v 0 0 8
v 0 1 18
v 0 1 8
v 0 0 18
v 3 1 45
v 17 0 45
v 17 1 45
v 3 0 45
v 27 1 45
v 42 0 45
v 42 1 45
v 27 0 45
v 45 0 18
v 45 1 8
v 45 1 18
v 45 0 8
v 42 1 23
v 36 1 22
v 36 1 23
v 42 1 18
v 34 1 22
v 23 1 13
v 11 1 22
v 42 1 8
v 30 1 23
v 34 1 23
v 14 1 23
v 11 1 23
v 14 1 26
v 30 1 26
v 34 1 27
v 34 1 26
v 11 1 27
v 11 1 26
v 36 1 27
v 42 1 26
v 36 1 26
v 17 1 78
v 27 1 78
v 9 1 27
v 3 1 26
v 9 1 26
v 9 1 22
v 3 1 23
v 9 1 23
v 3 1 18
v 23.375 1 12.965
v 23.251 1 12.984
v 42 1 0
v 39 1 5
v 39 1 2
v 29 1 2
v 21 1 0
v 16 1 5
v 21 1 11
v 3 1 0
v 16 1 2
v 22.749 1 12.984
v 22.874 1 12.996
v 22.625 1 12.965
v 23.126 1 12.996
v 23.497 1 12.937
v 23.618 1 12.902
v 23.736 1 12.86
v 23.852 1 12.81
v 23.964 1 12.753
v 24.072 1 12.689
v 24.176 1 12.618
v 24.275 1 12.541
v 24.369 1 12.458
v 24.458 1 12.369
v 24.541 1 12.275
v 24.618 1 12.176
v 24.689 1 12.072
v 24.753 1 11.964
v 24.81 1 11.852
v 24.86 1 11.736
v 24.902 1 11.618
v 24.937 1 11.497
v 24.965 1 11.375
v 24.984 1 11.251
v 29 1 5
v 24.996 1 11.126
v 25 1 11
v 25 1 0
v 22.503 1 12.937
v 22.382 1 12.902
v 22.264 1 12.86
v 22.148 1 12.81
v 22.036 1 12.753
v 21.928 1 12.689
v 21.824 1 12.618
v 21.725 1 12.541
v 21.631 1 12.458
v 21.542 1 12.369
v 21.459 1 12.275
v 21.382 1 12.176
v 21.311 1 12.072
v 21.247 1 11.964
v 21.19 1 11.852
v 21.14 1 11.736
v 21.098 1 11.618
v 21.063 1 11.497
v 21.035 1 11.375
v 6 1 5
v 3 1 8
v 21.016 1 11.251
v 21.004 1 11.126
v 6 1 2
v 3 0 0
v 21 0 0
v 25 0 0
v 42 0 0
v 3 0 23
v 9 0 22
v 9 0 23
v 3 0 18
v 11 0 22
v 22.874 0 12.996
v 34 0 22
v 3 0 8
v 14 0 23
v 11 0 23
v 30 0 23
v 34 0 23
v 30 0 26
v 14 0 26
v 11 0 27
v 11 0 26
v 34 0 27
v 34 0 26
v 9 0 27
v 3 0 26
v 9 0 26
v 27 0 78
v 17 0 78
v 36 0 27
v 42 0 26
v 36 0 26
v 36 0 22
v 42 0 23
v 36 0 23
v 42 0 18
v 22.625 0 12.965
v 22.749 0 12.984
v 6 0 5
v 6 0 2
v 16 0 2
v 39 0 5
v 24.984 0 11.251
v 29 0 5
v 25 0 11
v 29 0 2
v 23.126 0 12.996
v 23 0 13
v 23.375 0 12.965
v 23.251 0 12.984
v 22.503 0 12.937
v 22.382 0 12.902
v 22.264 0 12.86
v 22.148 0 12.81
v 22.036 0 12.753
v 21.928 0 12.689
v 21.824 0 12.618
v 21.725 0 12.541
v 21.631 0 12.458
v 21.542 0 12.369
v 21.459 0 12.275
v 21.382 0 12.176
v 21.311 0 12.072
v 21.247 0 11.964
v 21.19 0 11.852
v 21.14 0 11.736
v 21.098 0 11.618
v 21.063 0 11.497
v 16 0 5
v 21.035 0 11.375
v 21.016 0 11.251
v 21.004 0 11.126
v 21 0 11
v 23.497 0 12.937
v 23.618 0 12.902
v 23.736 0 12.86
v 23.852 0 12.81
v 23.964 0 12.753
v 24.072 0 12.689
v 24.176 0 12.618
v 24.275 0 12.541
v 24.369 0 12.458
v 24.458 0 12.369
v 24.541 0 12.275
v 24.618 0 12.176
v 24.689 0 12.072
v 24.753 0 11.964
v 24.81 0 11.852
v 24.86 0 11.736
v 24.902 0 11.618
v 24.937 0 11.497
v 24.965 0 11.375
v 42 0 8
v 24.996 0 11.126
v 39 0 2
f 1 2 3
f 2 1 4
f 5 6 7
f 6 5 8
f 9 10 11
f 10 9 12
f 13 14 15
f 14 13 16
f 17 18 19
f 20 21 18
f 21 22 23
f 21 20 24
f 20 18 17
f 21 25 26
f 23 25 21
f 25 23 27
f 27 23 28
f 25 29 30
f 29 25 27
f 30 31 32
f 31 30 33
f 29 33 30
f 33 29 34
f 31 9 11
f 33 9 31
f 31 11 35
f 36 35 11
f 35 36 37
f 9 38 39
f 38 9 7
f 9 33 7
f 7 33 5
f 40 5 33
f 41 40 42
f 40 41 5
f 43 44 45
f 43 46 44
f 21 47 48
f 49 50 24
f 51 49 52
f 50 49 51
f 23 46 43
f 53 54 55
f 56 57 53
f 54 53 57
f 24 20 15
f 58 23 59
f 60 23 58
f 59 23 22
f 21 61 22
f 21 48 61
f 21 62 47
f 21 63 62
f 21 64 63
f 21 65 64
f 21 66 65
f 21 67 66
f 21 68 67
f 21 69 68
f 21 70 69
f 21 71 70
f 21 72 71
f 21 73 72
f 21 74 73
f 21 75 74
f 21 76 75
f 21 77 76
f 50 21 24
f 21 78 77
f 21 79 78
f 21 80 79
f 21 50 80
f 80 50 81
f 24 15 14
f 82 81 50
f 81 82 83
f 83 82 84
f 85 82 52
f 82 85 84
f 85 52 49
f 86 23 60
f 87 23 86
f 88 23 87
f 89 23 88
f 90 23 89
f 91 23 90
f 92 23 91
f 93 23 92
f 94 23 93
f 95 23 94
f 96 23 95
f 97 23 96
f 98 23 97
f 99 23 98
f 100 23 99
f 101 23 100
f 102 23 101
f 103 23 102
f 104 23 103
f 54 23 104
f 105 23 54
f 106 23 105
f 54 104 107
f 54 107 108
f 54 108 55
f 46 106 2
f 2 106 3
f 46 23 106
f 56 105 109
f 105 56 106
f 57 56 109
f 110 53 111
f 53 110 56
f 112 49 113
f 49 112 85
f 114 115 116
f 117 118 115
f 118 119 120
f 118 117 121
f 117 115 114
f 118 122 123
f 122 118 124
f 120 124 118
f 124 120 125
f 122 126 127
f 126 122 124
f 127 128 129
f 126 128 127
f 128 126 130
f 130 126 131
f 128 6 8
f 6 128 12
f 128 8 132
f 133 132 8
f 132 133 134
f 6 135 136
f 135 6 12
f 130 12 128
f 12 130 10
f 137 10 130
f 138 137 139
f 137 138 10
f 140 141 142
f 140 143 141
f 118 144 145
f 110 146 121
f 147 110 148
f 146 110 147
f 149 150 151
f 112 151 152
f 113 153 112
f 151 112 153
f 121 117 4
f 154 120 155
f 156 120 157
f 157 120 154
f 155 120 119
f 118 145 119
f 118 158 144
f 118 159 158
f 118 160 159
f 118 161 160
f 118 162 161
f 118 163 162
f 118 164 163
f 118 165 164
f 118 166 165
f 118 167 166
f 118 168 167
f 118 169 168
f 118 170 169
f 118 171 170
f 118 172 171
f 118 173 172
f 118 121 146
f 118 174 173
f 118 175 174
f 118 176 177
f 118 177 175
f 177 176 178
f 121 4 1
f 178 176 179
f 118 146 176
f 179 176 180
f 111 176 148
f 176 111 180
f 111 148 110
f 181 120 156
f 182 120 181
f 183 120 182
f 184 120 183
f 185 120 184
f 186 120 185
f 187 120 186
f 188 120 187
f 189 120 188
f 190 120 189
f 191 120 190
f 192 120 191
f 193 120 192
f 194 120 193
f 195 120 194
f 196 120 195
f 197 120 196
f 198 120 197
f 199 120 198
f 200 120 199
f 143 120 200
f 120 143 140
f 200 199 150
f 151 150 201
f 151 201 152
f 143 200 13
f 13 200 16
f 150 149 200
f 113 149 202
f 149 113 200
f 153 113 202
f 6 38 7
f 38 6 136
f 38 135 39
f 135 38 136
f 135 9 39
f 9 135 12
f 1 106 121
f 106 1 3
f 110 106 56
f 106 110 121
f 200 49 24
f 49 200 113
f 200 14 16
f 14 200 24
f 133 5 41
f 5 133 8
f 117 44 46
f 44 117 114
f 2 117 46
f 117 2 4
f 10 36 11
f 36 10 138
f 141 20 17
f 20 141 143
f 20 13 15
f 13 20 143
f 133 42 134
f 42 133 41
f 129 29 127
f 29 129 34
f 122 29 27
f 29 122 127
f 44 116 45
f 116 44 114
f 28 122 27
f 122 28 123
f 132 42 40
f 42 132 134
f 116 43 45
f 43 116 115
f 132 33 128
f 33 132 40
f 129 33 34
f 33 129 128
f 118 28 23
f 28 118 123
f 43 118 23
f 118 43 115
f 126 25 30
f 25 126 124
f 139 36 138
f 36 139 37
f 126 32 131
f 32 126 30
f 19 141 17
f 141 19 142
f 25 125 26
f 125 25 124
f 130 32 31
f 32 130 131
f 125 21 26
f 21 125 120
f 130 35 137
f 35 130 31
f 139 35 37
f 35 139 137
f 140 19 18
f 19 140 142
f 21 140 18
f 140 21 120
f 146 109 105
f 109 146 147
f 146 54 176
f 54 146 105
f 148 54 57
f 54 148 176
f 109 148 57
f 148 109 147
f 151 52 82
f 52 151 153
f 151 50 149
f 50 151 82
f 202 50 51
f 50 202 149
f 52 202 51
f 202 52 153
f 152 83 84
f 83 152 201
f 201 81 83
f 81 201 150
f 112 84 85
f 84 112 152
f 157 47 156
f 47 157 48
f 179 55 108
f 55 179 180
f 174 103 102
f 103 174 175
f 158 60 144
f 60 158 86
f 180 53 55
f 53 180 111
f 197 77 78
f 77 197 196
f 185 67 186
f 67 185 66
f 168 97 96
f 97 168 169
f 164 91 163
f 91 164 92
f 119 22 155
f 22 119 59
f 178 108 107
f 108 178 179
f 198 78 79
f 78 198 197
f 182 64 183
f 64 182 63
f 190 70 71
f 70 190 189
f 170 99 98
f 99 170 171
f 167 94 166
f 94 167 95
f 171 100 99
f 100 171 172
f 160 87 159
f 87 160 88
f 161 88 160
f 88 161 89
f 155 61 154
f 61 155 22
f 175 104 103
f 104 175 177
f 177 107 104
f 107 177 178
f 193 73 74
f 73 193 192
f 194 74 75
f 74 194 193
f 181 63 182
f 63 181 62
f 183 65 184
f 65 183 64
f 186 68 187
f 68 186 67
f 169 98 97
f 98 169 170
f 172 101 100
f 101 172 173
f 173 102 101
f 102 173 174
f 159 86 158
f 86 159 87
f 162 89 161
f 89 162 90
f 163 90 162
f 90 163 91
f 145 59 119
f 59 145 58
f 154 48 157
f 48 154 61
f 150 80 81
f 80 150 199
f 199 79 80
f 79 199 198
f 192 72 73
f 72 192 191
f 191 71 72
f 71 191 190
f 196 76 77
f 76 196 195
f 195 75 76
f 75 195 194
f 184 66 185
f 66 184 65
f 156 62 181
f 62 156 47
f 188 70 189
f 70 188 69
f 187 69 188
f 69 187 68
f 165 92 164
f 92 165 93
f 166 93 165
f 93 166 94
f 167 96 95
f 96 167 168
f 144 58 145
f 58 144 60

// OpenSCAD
$fn=100;

difference()
{
union()
{
 color("red")translate([0,0,0])cube([45,1,45]);
 color("red")translate([17,0,0])cube([10,1,78]);
}
//corners
color("yellow")translate([-1,-1,-1])cube([4,3,9]);
color("yellow")translate([42,-1,-1])cube([4,3,9]);

//Off the sides
color("green")translate([-1,-1,18])cube([4,3,28]);
color("green")translate([42,-1,18])cube([4,3,28]);

//cross doodads
color("white")translate([-1,-1,23])cube([15,3,3]);
color("white")translate([9,-1,22])cube([2,3,5]);
color("white")translate([30,-1,23])cube([16,3,3]);
color("white")translate([34,-1,22])cube([2,3,5]);

//Bottom Slits
color("pink")translate([6,-1,2])cube([10,3,3]);
color("pink")translate([29,-1,2])cube([10,3,3]);

//The Round-ish Part
hull()
{
    color("white")translate([23,2,11])rotate([90,0,0])cylinder(3,2,2);
    color("white")translate([23,2,-2])rotate([90,0,0])cylinder(3,2,2);
}
}
